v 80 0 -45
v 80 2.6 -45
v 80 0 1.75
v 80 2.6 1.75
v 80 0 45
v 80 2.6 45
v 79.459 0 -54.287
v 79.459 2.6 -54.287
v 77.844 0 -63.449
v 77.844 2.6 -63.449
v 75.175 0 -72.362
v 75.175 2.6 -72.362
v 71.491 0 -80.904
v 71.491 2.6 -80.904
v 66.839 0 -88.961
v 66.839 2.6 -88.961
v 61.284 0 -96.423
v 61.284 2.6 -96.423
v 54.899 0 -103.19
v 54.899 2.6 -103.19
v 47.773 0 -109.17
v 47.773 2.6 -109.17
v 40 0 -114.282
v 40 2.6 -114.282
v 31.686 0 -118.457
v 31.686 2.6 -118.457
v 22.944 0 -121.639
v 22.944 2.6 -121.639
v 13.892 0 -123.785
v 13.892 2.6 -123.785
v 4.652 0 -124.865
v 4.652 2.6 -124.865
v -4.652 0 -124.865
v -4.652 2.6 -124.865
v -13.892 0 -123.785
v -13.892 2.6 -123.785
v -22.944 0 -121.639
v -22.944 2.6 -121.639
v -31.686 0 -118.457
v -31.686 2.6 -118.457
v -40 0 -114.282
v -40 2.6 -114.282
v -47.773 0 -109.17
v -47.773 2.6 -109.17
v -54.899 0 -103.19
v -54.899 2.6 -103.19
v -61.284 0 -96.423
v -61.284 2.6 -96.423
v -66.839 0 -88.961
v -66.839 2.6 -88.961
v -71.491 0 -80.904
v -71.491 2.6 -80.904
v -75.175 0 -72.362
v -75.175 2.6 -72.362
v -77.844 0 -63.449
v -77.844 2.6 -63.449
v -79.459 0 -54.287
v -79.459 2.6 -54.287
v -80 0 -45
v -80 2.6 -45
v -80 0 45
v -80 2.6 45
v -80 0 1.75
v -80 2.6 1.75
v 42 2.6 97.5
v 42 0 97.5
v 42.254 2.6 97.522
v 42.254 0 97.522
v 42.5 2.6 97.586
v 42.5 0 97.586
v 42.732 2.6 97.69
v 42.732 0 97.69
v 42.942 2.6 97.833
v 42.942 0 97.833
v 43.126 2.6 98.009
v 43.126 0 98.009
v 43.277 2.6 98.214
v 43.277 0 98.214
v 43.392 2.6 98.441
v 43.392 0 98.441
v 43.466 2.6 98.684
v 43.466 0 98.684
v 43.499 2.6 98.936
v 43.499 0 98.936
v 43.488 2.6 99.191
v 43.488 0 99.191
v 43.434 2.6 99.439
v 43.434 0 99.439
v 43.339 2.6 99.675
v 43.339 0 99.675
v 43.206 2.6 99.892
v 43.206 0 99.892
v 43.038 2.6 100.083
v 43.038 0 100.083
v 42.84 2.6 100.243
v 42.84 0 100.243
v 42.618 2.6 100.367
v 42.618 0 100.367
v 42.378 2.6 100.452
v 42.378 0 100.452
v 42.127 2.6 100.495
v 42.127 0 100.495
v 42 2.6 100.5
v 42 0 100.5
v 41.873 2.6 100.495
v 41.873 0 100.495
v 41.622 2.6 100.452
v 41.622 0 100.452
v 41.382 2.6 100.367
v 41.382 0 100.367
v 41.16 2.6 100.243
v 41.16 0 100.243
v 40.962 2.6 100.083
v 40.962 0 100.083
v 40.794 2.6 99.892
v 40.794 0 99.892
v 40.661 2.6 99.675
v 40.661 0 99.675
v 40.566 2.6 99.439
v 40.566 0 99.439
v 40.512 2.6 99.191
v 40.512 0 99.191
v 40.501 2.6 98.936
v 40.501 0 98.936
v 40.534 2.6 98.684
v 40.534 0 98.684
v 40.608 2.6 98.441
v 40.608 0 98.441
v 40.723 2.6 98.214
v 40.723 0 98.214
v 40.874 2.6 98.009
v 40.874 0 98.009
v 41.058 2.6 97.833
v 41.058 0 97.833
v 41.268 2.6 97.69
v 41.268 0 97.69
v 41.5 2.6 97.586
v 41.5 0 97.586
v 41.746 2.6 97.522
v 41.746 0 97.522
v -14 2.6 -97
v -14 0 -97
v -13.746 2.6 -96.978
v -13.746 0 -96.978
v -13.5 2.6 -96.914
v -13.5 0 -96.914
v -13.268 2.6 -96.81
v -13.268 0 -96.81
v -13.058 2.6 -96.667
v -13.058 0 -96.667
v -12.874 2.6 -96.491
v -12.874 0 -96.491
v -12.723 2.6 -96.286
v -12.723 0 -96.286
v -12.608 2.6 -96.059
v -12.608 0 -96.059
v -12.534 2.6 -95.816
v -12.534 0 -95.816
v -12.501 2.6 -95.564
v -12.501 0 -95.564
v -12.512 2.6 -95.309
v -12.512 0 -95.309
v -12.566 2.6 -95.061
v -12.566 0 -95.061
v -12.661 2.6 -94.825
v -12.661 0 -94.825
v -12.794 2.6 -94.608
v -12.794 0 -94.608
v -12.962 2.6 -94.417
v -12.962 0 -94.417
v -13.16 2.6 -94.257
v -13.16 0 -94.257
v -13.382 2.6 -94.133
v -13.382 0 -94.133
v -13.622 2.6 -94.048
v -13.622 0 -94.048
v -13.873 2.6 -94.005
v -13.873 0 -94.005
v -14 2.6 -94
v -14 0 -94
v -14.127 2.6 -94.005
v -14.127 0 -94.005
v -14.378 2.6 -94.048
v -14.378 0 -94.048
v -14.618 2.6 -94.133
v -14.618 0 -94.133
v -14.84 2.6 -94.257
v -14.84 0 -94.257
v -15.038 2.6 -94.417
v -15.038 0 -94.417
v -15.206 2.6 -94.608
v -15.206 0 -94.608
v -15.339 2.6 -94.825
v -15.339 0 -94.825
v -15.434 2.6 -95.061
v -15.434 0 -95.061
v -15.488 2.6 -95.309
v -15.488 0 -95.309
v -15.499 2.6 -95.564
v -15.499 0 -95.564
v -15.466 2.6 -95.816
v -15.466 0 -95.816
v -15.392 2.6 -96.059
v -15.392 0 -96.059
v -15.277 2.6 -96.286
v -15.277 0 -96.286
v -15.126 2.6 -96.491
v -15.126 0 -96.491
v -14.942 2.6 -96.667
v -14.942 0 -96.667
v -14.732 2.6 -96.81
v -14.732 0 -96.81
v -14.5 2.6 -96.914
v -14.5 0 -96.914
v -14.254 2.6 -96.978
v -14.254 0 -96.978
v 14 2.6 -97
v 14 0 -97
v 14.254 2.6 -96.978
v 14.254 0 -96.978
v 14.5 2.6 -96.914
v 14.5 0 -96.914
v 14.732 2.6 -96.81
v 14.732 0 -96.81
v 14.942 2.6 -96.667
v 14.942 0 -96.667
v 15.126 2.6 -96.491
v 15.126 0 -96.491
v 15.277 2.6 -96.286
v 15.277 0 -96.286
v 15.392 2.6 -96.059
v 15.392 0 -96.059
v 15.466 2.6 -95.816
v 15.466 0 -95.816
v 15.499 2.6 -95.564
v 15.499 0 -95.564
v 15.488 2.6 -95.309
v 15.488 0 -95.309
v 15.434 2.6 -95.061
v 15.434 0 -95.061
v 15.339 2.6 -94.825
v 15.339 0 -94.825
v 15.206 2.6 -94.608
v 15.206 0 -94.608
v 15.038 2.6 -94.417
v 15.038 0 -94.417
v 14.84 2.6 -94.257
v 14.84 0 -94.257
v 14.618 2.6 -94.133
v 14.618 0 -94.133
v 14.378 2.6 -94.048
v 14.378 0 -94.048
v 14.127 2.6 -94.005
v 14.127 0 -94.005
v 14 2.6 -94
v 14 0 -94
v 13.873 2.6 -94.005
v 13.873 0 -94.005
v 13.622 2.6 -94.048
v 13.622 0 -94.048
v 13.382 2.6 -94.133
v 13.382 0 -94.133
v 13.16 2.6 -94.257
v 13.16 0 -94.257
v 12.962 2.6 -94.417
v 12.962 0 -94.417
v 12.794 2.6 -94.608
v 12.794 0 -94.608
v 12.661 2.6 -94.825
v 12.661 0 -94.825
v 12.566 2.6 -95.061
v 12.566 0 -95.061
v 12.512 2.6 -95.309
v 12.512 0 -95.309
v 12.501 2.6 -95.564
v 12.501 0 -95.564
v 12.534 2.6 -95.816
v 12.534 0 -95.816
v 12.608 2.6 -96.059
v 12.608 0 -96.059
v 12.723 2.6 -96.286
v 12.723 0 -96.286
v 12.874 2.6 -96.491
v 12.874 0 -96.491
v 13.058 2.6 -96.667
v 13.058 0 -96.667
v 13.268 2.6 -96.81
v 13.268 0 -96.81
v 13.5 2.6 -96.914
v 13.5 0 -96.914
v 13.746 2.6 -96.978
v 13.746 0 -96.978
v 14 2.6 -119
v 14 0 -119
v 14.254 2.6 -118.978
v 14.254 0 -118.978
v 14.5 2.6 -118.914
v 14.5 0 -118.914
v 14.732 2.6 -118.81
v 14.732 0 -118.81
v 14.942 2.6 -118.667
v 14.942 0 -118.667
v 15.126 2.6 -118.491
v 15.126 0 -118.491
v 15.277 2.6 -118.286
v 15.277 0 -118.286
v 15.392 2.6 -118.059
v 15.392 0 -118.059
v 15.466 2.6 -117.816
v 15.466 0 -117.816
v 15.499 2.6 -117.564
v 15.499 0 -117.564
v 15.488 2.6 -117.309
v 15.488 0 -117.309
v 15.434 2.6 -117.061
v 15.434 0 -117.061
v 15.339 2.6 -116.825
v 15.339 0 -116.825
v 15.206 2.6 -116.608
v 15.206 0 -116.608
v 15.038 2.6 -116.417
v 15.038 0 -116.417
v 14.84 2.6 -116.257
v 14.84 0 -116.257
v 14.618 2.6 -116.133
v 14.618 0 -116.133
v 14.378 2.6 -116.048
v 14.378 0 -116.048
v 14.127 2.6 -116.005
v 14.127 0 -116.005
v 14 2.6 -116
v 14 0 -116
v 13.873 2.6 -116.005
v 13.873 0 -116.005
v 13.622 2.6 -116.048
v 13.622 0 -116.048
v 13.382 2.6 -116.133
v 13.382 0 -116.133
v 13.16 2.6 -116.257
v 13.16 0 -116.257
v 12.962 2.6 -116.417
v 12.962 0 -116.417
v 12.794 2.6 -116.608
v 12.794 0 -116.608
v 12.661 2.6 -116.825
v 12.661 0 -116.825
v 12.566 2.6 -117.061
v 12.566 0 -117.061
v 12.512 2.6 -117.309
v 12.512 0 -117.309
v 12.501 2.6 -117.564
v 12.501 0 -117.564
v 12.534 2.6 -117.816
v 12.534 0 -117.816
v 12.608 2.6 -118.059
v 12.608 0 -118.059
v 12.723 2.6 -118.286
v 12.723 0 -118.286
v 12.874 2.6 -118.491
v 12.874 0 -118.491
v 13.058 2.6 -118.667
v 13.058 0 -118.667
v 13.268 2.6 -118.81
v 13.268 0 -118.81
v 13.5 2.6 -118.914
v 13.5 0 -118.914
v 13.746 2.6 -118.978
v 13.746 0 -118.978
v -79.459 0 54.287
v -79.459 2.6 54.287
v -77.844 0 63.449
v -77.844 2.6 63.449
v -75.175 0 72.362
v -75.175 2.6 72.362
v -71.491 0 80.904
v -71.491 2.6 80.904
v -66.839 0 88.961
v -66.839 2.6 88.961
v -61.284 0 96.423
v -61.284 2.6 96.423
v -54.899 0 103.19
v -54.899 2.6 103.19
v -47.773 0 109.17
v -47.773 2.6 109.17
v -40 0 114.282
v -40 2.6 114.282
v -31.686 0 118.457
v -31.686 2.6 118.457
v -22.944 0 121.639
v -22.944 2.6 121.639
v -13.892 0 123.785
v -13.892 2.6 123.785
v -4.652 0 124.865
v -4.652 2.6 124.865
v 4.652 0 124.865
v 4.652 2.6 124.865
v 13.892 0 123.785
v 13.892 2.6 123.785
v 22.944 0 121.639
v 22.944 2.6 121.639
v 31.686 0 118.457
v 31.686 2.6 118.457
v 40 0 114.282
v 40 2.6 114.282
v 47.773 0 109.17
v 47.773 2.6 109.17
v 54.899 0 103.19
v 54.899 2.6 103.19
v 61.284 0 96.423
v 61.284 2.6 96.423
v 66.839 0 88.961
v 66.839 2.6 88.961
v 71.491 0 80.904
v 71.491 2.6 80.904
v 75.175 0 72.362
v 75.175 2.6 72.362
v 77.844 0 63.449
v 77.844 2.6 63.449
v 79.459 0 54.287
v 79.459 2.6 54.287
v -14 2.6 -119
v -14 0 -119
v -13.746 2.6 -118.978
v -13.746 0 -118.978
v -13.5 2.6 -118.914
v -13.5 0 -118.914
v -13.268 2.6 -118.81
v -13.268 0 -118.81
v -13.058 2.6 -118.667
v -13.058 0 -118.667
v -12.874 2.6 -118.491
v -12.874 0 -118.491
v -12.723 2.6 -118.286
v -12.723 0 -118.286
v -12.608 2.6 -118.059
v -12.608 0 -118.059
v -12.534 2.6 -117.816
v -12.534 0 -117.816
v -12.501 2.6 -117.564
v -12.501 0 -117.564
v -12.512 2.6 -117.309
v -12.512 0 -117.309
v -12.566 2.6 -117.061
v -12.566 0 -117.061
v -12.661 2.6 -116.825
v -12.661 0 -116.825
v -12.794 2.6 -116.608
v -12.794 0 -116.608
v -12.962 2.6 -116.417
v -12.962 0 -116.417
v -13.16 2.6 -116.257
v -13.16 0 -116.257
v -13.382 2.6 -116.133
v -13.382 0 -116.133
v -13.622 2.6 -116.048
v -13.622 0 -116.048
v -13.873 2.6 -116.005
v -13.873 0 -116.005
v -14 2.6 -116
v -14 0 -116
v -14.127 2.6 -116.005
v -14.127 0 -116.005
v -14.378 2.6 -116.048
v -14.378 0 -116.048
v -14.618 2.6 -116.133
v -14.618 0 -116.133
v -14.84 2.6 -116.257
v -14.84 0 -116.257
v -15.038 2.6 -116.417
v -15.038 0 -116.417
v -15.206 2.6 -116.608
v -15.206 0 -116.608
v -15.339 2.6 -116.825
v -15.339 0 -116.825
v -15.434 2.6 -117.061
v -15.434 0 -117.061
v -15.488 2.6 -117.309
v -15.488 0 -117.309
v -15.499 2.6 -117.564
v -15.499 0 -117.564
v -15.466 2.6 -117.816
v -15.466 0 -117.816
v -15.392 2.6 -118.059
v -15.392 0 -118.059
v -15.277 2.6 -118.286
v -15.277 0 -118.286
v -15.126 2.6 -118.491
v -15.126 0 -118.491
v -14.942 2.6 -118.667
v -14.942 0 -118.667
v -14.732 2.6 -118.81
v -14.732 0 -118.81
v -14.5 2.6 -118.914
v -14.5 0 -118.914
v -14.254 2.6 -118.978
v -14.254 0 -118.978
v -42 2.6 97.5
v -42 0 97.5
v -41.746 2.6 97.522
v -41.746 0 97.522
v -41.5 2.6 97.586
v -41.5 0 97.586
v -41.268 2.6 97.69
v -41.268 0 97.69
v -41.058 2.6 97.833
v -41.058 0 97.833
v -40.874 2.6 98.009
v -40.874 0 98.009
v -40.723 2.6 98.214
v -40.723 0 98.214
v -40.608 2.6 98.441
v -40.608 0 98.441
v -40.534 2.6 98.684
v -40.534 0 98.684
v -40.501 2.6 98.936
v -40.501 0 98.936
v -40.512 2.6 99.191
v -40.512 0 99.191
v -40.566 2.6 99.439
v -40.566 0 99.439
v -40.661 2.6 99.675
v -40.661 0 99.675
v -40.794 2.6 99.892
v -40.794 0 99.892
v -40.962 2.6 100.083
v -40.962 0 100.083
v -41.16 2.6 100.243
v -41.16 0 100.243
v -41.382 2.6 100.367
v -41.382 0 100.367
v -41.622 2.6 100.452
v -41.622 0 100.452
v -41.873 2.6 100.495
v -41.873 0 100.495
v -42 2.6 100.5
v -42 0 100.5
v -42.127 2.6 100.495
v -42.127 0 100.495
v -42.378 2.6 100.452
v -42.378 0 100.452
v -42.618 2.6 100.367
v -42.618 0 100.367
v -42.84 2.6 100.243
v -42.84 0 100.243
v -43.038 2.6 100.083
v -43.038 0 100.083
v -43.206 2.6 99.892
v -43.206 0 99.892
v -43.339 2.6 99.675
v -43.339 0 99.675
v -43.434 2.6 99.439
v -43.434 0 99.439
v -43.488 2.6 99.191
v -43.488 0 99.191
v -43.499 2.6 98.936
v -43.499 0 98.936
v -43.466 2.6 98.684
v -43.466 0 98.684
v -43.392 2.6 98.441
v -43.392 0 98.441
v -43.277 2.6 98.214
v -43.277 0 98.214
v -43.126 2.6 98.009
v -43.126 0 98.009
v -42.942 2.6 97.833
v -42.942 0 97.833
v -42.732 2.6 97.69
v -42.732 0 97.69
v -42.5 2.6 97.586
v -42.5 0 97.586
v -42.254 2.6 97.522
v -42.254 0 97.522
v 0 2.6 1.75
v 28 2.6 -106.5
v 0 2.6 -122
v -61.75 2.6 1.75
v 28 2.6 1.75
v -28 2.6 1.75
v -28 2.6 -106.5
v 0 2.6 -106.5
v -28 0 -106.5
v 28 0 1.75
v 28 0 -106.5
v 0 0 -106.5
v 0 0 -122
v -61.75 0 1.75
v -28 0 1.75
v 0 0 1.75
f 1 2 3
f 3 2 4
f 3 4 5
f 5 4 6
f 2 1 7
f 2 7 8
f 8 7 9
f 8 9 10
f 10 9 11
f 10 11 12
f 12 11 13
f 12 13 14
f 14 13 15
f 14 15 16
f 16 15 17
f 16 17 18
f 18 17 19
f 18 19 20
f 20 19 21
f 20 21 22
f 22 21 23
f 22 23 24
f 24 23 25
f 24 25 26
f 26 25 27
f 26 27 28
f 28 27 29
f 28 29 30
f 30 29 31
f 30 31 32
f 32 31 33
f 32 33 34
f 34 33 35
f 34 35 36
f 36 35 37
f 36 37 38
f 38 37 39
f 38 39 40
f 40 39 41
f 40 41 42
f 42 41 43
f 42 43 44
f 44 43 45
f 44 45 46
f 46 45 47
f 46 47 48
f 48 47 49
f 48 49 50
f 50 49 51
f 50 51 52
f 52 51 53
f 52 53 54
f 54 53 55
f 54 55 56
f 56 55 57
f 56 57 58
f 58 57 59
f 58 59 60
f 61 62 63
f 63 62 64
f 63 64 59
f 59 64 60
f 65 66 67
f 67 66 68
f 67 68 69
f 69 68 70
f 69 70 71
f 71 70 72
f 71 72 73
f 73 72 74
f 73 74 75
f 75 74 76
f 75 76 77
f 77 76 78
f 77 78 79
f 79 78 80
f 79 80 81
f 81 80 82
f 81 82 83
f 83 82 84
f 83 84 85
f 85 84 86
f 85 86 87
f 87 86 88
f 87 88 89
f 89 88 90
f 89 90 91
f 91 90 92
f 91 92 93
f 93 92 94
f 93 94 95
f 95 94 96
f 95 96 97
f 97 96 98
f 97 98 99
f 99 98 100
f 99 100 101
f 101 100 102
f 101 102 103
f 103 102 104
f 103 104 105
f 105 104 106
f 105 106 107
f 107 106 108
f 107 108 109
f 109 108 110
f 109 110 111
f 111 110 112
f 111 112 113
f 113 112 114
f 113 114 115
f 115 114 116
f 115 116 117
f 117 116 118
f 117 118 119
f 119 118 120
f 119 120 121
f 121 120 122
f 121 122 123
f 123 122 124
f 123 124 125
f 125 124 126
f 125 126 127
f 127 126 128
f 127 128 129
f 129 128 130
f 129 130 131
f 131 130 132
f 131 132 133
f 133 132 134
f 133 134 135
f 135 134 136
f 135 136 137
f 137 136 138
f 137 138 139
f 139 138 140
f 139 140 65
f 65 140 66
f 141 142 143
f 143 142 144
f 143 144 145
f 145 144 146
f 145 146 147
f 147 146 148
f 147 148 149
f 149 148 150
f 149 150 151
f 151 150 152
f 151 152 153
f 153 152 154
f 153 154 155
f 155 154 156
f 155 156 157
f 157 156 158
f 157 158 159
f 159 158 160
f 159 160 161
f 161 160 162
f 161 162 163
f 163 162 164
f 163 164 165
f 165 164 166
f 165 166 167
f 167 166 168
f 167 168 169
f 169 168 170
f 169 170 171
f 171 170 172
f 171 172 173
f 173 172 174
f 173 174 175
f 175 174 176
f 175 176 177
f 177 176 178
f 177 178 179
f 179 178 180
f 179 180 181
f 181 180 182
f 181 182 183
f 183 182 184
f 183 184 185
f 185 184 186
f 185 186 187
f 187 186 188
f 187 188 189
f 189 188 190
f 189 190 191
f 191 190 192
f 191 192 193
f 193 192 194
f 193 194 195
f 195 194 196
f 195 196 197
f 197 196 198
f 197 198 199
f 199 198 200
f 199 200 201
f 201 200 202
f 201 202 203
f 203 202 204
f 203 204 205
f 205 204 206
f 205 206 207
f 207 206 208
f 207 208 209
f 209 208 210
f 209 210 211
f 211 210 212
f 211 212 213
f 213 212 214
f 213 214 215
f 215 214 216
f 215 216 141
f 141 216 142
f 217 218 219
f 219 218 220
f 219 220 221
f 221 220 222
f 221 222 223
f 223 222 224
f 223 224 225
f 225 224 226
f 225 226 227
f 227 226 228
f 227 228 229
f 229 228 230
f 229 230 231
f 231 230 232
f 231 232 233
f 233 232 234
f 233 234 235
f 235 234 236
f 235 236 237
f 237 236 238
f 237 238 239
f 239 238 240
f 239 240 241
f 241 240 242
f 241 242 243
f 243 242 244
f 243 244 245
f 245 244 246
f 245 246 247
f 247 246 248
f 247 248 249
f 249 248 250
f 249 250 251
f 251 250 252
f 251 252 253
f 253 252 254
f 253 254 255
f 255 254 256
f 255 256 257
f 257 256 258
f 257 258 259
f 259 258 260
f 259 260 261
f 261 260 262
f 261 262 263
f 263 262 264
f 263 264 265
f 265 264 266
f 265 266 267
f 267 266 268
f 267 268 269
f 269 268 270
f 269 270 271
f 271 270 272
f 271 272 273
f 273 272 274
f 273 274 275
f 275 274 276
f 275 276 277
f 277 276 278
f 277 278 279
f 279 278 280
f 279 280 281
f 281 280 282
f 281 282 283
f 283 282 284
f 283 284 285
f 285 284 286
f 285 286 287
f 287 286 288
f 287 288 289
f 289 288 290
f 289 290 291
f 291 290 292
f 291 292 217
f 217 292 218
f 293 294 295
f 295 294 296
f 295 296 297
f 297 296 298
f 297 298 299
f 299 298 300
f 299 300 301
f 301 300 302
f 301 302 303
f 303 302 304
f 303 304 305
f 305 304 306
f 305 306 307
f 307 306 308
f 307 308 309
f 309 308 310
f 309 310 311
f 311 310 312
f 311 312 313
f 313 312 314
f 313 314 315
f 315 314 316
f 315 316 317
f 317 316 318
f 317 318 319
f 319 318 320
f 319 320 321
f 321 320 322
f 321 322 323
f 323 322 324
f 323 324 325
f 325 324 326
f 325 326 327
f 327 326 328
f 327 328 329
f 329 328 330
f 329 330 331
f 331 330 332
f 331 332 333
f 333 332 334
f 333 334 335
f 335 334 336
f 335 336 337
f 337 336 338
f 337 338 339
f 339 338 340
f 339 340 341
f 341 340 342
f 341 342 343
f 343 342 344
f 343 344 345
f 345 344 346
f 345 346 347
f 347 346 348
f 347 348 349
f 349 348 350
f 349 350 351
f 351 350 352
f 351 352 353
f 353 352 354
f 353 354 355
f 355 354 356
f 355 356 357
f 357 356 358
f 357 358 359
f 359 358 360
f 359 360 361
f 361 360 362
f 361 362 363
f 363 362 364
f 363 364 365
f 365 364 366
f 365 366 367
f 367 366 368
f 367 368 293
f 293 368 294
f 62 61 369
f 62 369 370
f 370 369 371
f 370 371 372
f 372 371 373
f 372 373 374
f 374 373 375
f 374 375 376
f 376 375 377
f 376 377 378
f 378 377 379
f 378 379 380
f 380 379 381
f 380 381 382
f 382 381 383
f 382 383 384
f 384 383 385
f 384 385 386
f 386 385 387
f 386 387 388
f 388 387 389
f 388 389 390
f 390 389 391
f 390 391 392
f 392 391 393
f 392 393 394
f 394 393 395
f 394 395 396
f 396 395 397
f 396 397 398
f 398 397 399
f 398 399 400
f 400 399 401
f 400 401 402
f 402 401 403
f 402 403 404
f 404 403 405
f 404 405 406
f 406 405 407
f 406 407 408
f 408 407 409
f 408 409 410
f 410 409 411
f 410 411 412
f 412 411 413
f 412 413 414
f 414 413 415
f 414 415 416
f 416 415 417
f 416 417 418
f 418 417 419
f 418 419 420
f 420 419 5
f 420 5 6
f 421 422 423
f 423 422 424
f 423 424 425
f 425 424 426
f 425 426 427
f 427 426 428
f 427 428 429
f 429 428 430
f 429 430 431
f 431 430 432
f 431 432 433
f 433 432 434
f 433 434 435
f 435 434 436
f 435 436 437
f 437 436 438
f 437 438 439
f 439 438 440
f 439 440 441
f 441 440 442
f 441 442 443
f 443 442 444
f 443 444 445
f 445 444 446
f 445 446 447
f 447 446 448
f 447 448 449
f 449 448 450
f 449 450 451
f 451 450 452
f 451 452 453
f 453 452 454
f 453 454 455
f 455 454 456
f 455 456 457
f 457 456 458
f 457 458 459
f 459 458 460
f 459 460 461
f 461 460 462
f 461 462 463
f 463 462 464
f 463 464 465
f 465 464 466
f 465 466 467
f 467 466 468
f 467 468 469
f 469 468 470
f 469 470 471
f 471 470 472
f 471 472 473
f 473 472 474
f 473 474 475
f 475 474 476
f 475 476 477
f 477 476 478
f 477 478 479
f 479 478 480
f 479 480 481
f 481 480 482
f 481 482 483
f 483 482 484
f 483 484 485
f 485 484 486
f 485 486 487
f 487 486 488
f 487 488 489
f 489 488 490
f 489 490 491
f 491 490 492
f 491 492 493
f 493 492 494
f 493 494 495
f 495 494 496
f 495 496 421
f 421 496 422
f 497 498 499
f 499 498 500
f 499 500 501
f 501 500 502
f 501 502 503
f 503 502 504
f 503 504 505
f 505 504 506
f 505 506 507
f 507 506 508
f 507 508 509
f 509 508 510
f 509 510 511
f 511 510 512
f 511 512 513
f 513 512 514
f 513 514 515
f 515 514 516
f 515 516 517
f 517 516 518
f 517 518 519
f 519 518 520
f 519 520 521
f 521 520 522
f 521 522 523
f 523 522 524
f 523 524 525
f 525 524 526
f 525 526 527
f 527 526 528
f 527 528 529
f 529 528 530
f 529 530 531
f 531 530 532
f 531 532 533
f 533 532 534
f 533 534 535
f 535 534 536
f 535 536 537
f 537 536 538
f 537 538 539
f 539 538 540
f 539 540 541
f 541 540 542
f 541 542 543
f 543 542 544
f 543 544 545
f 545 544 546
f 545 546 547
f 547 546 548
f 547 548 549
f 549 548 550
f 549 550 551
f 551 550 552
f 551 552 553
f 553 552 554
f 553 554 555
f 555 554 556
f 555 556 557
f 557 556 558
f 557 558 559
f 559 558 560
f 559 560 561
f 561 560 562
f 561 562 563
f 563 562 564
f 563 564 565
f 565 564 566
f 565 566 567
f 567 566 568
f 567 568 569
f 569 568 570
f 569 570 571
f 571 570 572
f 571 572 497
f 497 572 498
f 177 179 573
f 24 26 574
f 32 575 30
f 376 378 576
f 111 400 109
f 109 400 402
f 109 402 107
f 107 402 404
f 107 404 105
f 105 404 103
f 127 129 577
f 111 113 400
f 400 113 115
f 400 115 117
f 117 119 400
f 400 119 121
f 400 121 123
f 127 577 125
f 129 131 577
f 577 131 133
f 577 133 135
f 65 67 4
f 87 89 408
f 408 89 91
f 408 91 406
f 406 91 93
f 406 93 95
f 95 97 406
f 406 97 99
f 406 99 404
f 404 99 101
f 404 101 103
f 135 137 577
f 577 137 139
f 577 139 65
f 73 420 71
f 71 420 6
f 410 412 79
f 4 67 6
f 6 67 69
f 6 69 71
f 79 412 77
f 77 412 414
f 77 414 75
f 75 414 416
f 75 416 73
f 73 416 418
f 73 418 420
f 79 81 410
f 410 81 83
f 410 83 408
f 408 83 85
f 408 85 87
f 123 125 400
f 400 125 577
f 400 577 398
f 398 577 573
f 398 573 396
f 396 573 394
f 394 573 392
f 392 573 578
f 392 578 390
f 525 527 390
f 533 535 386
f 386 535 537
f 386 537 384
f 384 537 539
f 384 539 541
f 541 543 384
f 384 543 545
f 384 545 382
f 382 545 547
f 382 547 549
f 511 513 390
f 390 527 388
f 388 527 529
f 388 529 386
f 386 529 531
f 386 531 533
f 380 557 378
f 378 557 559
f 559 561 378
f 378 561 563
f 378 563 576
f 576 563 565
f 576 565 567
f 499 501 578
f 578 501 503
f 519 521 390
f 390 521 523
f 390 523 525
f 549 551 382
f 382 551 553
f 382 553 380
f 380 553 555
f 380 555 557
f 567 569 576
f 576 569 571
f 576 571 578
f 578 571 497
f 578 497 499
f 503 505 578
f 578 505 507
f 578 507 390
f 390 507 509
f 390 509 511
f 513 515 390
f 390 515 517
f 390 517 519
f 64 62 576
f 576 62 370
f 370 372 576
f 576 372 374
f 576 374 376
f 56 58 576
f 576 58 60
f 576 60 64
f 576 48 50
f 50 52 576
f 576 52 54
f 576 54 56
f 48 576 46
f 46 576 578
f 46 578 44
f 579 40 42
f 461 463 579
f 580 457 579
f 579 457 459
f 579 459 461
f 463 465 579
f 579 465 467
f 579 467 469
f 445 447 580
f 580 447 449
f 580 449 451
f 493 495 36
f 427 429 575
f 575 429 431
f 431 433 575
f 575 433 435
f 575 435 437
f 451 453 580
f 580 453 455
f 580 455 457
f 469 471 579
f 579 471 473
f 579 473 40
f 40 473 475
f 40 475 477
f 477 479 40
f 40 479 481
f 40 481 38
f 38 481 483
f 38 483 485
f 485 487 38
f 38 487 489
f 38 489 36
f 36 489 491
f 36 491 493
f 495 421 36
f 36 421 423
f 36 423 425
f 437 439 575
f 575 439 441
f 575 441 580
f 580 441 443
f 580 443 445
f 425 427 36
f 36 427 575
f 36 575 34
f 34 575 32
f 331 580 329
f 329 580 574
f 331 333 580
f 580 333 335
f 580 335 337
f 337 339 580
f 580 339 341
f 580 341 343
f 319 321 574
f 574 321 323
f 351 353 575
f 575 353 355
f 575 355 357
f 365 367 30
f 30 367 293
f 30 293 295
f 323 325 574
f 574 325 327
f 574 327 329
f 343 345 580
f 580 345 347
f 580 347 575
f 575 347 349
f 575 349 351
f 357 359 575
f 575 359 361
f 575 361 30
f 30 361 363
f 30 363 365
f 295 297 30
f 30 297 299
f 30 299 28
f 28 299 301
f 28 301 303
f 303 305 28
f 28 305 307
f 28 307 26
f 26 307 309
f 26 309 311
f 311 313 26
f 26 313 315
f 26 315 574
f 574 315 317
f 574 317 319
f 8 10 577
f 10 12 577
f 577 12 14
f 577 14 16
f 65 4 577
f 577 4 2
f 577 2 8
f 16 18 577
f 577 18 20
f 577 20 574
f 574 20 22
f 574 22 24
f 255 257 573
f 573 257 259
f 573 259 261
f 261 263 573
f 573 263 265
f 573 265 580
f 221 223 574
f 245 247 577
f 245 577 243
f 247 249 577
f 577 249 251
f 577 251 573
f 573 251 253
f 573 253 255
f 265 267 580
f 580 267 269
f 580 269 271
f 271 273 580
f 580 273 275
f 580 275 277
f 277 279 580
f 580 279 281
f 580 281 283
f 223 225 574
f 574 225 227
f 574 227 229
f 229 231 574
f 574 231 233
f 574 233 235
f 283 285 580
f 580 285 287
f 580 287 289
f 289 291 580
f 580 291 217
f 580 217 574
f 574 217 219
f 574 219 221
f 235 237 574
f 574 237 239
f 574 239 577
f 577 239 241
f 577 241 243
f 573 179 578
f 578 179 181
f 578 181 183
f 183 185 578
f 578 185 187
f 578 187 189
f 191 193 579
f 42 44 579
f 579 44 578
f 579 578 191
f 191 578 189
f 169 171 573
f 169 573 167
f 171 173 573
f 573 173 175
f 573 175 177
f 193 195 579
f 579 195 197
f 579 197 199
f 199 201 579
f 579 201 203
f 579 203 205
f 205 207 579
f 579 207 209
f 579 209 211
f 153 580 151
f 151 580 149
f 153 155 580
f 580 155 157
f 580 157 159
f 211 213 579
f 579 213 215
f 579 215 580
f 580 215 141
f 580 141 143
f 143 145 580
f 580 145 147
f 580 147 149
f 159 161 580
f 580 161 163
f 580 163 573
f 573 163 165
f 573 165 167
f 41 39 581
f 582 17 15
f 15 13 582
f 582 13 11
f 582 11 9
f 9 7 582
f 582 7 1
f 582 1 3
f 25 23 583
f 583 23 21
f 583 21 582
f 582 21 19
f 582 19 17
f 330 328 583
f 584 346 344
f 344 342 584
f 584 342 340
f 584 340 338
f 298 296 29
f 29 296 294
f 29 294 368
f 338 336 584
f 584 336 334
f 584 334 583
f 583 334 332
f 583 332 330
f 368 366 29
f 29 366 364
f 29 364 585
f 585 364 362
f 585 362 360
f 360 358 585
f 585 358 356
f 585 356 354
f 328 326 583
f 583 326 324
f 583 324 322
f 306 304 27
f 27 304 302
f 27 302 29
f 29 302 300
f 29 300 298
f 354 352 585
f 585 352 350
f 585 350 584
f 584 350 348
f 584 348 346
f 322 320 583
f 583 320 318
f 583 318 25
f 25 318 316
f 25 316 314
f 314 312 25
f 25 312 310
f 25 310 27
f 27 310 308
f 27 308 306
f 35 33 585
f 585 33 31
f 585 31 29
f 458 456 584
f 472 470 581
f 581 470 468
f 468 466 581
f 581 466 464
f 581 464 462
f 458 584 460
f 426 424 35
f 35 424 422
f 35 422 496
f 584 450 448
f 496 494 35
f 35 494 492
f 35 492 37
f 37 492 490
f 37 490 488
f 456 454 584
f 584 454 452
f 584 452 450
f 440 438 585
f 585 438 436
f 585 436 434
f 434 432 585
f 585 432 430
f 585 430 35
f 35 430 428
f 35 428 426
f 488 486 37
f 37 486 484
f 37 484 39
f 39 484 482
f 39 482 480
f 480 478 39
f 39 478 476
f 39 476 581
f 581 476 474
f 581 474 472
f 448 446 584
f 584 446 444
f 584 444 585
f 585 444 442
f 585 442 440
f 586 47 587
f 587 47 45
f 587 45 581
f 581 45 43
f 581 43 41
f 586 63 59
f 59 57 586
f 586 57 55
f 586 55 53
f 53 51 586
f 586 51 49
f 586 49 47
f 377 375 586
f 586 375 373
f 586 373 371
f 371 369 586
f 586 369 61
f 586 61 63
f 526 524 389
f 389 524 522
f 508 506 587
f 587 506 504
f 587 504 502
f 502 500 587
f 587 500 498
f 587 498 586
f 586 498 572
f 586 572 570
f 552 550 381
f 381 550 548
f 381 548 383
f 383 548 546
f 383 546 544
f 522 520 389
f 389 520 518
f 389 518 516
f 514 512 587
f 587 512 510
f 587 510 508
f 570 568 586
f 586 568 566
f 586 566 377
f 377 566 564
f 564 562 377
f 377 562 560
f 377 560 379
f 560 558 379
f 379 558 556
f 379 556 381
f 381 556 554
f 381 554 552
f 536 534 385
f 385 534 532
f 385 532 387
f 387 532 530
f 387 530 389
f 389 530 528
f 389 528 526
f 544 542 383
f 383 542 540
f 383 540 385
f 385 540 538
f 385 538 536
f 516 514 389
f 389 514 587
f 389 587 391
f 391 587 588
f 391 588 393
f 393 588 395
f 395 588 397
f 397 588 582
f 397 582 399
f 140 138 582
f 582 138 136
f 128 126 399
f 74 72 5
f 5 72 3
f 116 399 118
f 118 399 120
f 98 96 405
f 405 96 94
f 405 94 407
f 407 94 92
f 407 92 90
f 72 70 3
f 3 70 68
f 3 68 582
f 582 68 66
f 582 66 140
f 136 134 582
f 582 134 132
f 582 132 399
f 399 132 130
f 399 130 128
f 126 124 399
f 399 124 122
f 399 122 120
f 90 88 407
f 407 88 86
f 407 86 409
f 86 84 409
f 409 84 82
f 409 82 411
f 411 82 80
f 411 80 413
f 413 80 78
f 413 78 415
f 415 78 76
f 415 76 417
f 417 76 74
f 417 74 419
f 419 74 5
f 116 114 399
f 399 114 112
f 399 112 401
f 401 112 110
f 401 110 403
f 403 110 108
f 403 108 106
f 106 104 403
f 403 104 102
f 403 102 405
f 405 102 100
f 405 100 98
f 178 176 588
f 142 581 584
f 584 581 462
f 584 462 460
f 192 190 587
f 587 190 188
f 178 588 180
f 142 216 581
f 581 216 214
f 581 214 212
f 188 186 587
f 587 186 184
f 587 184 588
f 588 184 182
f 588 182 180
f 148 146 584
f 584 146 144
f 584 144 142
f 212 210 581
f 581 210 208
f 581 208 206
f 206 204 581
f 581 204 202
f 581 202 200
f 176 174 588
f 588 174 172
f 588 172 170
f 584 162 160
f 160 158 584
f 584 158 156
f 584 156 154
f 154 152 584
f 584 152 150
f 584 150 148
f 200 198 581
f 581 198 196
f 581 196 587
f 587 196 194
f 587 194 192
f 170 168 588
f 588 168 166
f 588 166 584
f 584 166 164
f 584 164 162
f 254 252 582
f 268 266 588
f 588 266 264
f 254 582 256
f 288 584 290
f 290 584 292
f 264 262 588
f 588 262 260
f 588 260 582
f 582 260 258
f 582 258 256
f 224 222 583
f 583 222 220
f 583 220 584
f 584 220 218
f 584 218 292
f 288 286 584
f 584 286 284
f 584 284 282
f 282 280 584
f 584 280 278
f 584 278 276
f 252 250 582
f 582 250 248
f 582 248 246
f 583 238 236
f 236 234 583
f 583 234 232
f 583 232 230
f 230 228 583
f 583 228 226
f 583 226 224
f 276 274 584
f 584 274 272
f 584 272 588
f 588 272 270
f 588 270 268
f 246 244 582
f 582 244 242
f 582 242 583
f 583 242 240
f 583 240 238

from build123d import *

# Parameters (mm, degrees)
SKETCH2_R           = 1.5
BOSS_EXTRUDE2_DEPTH = 2.6


with BuildPart() as part:
    # Sketch2 → Boss-Extrude2 (new body)
    with BuildSketch(Plane(origin=(0, 0, 0), x_dir=(1, 0, 0), z_dir=(0, 1, 0))):
        with BuildLine():
            Line((-80, -45), (-80, 45))
            ThreePointArc((-80, 45), (0, 125), (80, 45))
            Line((80, 45), (80, -45))
            ThreePointArc((80, -45), (0, -125), (-80, -45))
        make_face()
        with Locations(Location((14, 117.5, 0), (0, 0, 270))):
            Circle(SKETCH2_R, mode=Mode.SUBTRACT)
        with Locations(Location((14, 95.5, 0), (0, 0, 270))):
            Circle(SKETCH2_R, mode=Mode.SUBTRACT)
        with Locations(Location((-14, 95.5, 0), (0, 0, 270))):
            Circle(SKETCH2_R, mode=Mode.SUBTRACT)
        with Locations(Location((-14, 117.5, 0), (0, 0, 270))):
            Circle(SKETCH2_R, mode=Mode.SUBTRACT)
        with Locations(Location((42, -99, 0), (0, 0, 270))):
            Circle(SKETCH2_R, mode=Mode.SUBTRACT)
        with Locations(Location((-42, -99, 0), (0, 0, 270))):
            Circle(SKETCH2_R, mode=Mode.SUBTRACT)
    extrude(amount=BOSS_EXTRUDE2_DEPTH)


solid = part.part
